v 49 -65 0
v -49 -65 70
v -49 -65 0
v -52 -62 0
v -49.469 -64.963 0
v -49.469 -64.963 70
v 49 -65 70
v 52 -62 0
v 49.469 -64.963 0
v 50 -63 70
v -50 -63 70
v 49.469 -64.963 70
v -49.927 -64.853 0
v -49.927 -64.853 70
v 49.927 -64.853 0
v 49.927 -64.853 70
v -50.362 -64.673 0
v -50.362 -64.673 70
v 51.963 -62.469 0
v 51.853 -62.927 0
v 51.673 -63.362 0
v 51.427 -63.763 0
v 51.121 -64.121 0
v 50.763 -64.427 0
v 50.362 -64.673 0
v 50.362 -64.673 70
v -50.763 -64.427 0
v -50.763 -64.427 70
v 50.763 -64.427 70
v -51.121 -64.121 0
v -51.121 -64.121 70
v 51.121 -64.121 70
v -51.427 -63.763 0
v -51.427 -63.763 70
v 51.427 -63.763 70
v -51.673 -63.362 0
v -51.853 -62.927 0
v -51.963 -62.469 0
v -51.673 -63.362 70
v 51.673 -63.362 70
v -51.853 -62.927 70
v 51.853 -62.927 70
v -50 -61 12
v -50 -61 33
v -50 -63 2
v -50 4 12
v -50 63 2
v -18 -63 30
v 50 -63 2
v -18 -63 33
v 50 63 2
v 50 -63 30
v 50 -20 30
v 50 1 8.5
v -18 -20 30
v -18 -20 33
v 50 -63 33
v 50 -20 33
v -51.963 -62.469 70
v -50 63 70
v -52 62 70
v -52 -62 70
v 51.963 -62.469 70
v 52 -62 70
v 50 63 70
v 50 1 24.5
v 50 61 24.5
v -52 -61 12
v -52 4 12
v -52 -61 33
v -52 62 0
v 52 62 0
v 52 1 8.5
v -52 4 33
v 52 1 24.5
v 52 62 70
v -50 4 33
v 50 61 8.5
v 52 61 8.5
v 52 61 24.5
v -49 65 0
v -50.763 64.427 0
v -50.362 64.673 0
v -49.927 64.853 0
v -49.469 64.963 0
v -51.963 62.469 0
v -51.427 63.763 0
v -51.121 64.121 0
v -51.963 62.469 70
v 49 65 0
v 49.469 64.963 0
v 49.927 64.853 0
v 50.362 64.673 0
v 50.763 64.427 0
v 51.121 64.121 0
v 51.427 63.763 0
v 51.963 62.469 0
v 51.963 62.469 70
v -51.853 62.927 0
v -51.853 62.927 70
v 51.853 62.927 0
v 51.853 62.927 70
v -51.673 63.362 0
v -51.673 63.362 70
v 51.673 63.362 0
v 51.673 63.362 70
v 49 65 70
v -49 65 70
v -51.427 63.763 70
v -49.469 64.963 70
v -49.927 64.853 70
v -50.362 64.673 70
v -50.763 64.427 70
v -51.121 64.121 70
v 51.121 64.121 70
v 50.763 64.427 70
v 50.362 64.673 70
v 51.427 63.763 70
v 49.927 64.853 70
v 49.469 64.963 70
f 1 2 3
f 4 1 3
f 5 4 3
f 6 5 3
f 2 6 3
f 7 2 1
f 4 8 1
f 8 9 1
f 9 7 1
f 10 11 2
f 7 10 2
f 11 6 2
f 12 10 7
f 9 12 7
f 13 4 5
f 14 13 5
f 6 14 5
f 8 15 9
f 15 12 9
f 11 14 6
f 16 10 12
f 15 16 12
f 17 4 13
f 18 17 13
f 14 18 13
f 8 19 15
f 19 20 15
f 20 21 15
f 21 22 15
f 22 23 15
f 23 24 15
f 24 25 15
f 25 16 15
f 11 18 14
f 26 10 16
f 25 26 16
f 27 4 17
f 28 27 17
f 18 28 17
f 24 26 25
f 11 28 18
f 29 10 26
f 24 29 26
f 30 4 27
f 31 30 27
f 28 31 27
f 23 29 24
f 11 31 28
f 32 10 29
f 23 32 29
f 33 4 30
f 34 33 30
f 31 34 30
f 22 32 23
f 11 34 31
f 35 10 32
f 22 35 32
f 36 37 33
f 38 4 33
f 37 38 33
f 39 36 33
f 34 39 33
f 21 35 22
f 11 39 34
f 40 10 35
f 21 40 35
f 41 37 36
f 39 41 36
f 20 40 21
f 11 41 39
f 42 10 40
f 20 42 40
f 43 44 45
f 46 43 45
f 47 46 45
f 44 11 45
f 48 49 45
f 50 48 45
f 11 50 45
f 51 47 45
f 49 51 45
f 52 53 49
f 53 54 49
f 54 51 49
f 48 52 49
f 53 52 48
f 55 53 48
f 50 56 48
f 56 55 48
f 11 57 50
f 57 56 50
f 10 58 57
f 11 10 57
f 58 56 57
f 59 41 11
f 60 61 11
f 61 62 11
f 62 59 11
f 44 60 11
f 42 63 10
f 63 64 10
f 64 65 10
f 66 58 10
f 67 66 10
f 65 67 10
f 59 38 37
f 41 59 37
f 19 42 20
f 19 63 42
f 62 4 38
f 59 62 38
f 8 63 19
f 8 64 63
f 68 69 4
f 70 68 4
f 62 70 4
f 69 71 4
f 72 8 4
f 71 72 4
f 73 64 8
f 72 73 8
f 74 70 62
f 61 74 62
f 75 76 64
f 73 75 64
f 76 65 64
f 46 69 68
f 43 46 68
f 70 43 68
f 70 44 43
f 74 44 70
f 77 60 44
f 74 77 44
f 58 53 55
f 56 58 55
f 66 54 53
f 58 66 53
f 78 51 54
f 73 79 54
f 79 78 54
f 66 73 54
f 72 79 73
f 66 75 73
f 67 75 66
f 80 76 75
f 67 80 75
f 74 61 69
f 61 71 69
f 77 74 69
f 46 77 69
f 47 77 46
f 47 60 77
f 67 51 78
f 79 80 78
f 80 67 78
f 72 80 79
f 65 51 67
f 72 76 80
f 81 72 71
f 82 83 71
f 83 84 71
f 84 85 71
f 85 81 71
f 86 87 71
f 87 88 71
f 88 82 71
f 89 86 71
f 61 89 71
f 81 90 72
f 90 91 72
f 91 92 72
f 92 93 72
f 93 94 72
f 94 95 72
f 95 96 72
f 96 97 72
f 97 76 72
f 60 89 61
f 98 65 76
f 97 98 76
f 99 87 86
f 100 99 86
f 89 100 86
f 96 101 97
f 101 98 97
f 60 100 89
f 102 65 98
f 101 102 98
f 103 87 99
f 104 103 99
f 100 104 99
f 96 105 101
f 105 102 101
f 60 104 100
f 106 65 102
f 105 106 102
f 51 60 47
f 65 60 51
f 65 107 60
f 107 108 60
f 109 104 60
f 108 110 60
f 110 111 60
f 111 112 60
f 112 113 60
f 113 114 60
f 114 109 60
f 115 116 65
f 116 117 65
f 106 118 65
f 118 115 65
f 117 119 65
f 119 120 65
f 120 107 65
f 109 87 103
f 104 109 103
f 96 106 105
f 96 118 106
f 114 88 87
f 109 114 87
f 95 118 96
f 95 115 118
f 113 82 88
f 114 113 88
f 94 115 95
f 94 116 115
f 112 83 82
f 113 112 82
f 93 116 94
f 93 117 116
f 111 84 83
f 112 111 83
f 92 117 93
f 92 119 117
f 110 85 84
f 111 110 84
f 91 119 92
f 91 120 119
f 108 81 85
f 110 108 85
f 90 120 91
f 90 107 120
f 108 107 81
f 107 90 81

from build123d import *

# Parameters (mm, degrees)
SKETCH_1_W          = 104
SKETCH_1_H          = 130
EXTRUDE_1_DEPTH     = 70
SHELL_1_T           = -2
SKETCH_4_W          = 21
SKETCH_4_H          = 65
CUT_EXTRUDE_1_DEPTH = 70
SKETCH_6_W          = 16
SKETCH_6_H          = 60
CUT_EXTRUDE_2_DEPTH = 70
SKETCH_13_W         = 3
SKETCH_13_H         = 45
EXTRUDE_5_DEPTH     = 70
FILLET_2_R          = 3


with BuildPart() as part:
    # 草圖1 → 填料-伸長1 (new body)
    with BuildSketch(Plane.XY):
        Rectangle(SKETCH_1_W, SKETCH_1_H)
    extrude(amount=EXTRUDE_1_DEPTH)

    # 薄殼1
    shell_1_openings = [part.faces().sort_by_distance(p)[0] for p in [
        (0, 0, 70),
    ]]
    offset(amount=SHELL_1_T, openings=shell_1_openings, kind=Kind.INTERSECTION)

    # 草圖4 → 除料-伸長1 (cut)
    with BuildSketch(Plane.ZY.offset(52)):
        with Locations((22.5, -28.5)):
            Rectangle(SKETCH_4_W, SKETCH_4_H)
    extrude(amount=-CUT_EXTRUDE_1_DEPTH, mode=Mode.SUBTRACT)

    # 草圖6 → 除料-伸長2 (cut)
    with BuildSketch(Plane(origin=(52, 0, 0), x_dir=(0, 0, -1), z_dir=(1, 0, 0))):
        with Locations((-16.5, 31)):
            Rectangle(SKETCH_6_W, SKETCH_6_H)
    extrude(amount=-CUT_EXTRUDE_2_DEPTH, mode=Mode.SUBTRACT)

    # 草圖13 → 填料-伸長5 (add)
    with BuildSketch(Plane(origin=(52, 0, 0), x_dir=(0, 0, -1), z_dir=(1, 0, 0))):
        with Locations((-31.5, -42.5)):
            Rectangle(SKETCH_13_W, SKETCH_13_H)
    extrude(amount=-EXTRUDE_5_DEPTH)

    # 圓角2
    fillet_2_edges = [part.edges().sort_by_distance(p)[0] for p in [
        (52, -65, 35),
        (-52, -65, 35),
        (-52, 65, 35),
        (52, 65, 35),
    ]]
    fillet(fillet_2_edges, radius=FILLET_2_R)


solid = part.part
